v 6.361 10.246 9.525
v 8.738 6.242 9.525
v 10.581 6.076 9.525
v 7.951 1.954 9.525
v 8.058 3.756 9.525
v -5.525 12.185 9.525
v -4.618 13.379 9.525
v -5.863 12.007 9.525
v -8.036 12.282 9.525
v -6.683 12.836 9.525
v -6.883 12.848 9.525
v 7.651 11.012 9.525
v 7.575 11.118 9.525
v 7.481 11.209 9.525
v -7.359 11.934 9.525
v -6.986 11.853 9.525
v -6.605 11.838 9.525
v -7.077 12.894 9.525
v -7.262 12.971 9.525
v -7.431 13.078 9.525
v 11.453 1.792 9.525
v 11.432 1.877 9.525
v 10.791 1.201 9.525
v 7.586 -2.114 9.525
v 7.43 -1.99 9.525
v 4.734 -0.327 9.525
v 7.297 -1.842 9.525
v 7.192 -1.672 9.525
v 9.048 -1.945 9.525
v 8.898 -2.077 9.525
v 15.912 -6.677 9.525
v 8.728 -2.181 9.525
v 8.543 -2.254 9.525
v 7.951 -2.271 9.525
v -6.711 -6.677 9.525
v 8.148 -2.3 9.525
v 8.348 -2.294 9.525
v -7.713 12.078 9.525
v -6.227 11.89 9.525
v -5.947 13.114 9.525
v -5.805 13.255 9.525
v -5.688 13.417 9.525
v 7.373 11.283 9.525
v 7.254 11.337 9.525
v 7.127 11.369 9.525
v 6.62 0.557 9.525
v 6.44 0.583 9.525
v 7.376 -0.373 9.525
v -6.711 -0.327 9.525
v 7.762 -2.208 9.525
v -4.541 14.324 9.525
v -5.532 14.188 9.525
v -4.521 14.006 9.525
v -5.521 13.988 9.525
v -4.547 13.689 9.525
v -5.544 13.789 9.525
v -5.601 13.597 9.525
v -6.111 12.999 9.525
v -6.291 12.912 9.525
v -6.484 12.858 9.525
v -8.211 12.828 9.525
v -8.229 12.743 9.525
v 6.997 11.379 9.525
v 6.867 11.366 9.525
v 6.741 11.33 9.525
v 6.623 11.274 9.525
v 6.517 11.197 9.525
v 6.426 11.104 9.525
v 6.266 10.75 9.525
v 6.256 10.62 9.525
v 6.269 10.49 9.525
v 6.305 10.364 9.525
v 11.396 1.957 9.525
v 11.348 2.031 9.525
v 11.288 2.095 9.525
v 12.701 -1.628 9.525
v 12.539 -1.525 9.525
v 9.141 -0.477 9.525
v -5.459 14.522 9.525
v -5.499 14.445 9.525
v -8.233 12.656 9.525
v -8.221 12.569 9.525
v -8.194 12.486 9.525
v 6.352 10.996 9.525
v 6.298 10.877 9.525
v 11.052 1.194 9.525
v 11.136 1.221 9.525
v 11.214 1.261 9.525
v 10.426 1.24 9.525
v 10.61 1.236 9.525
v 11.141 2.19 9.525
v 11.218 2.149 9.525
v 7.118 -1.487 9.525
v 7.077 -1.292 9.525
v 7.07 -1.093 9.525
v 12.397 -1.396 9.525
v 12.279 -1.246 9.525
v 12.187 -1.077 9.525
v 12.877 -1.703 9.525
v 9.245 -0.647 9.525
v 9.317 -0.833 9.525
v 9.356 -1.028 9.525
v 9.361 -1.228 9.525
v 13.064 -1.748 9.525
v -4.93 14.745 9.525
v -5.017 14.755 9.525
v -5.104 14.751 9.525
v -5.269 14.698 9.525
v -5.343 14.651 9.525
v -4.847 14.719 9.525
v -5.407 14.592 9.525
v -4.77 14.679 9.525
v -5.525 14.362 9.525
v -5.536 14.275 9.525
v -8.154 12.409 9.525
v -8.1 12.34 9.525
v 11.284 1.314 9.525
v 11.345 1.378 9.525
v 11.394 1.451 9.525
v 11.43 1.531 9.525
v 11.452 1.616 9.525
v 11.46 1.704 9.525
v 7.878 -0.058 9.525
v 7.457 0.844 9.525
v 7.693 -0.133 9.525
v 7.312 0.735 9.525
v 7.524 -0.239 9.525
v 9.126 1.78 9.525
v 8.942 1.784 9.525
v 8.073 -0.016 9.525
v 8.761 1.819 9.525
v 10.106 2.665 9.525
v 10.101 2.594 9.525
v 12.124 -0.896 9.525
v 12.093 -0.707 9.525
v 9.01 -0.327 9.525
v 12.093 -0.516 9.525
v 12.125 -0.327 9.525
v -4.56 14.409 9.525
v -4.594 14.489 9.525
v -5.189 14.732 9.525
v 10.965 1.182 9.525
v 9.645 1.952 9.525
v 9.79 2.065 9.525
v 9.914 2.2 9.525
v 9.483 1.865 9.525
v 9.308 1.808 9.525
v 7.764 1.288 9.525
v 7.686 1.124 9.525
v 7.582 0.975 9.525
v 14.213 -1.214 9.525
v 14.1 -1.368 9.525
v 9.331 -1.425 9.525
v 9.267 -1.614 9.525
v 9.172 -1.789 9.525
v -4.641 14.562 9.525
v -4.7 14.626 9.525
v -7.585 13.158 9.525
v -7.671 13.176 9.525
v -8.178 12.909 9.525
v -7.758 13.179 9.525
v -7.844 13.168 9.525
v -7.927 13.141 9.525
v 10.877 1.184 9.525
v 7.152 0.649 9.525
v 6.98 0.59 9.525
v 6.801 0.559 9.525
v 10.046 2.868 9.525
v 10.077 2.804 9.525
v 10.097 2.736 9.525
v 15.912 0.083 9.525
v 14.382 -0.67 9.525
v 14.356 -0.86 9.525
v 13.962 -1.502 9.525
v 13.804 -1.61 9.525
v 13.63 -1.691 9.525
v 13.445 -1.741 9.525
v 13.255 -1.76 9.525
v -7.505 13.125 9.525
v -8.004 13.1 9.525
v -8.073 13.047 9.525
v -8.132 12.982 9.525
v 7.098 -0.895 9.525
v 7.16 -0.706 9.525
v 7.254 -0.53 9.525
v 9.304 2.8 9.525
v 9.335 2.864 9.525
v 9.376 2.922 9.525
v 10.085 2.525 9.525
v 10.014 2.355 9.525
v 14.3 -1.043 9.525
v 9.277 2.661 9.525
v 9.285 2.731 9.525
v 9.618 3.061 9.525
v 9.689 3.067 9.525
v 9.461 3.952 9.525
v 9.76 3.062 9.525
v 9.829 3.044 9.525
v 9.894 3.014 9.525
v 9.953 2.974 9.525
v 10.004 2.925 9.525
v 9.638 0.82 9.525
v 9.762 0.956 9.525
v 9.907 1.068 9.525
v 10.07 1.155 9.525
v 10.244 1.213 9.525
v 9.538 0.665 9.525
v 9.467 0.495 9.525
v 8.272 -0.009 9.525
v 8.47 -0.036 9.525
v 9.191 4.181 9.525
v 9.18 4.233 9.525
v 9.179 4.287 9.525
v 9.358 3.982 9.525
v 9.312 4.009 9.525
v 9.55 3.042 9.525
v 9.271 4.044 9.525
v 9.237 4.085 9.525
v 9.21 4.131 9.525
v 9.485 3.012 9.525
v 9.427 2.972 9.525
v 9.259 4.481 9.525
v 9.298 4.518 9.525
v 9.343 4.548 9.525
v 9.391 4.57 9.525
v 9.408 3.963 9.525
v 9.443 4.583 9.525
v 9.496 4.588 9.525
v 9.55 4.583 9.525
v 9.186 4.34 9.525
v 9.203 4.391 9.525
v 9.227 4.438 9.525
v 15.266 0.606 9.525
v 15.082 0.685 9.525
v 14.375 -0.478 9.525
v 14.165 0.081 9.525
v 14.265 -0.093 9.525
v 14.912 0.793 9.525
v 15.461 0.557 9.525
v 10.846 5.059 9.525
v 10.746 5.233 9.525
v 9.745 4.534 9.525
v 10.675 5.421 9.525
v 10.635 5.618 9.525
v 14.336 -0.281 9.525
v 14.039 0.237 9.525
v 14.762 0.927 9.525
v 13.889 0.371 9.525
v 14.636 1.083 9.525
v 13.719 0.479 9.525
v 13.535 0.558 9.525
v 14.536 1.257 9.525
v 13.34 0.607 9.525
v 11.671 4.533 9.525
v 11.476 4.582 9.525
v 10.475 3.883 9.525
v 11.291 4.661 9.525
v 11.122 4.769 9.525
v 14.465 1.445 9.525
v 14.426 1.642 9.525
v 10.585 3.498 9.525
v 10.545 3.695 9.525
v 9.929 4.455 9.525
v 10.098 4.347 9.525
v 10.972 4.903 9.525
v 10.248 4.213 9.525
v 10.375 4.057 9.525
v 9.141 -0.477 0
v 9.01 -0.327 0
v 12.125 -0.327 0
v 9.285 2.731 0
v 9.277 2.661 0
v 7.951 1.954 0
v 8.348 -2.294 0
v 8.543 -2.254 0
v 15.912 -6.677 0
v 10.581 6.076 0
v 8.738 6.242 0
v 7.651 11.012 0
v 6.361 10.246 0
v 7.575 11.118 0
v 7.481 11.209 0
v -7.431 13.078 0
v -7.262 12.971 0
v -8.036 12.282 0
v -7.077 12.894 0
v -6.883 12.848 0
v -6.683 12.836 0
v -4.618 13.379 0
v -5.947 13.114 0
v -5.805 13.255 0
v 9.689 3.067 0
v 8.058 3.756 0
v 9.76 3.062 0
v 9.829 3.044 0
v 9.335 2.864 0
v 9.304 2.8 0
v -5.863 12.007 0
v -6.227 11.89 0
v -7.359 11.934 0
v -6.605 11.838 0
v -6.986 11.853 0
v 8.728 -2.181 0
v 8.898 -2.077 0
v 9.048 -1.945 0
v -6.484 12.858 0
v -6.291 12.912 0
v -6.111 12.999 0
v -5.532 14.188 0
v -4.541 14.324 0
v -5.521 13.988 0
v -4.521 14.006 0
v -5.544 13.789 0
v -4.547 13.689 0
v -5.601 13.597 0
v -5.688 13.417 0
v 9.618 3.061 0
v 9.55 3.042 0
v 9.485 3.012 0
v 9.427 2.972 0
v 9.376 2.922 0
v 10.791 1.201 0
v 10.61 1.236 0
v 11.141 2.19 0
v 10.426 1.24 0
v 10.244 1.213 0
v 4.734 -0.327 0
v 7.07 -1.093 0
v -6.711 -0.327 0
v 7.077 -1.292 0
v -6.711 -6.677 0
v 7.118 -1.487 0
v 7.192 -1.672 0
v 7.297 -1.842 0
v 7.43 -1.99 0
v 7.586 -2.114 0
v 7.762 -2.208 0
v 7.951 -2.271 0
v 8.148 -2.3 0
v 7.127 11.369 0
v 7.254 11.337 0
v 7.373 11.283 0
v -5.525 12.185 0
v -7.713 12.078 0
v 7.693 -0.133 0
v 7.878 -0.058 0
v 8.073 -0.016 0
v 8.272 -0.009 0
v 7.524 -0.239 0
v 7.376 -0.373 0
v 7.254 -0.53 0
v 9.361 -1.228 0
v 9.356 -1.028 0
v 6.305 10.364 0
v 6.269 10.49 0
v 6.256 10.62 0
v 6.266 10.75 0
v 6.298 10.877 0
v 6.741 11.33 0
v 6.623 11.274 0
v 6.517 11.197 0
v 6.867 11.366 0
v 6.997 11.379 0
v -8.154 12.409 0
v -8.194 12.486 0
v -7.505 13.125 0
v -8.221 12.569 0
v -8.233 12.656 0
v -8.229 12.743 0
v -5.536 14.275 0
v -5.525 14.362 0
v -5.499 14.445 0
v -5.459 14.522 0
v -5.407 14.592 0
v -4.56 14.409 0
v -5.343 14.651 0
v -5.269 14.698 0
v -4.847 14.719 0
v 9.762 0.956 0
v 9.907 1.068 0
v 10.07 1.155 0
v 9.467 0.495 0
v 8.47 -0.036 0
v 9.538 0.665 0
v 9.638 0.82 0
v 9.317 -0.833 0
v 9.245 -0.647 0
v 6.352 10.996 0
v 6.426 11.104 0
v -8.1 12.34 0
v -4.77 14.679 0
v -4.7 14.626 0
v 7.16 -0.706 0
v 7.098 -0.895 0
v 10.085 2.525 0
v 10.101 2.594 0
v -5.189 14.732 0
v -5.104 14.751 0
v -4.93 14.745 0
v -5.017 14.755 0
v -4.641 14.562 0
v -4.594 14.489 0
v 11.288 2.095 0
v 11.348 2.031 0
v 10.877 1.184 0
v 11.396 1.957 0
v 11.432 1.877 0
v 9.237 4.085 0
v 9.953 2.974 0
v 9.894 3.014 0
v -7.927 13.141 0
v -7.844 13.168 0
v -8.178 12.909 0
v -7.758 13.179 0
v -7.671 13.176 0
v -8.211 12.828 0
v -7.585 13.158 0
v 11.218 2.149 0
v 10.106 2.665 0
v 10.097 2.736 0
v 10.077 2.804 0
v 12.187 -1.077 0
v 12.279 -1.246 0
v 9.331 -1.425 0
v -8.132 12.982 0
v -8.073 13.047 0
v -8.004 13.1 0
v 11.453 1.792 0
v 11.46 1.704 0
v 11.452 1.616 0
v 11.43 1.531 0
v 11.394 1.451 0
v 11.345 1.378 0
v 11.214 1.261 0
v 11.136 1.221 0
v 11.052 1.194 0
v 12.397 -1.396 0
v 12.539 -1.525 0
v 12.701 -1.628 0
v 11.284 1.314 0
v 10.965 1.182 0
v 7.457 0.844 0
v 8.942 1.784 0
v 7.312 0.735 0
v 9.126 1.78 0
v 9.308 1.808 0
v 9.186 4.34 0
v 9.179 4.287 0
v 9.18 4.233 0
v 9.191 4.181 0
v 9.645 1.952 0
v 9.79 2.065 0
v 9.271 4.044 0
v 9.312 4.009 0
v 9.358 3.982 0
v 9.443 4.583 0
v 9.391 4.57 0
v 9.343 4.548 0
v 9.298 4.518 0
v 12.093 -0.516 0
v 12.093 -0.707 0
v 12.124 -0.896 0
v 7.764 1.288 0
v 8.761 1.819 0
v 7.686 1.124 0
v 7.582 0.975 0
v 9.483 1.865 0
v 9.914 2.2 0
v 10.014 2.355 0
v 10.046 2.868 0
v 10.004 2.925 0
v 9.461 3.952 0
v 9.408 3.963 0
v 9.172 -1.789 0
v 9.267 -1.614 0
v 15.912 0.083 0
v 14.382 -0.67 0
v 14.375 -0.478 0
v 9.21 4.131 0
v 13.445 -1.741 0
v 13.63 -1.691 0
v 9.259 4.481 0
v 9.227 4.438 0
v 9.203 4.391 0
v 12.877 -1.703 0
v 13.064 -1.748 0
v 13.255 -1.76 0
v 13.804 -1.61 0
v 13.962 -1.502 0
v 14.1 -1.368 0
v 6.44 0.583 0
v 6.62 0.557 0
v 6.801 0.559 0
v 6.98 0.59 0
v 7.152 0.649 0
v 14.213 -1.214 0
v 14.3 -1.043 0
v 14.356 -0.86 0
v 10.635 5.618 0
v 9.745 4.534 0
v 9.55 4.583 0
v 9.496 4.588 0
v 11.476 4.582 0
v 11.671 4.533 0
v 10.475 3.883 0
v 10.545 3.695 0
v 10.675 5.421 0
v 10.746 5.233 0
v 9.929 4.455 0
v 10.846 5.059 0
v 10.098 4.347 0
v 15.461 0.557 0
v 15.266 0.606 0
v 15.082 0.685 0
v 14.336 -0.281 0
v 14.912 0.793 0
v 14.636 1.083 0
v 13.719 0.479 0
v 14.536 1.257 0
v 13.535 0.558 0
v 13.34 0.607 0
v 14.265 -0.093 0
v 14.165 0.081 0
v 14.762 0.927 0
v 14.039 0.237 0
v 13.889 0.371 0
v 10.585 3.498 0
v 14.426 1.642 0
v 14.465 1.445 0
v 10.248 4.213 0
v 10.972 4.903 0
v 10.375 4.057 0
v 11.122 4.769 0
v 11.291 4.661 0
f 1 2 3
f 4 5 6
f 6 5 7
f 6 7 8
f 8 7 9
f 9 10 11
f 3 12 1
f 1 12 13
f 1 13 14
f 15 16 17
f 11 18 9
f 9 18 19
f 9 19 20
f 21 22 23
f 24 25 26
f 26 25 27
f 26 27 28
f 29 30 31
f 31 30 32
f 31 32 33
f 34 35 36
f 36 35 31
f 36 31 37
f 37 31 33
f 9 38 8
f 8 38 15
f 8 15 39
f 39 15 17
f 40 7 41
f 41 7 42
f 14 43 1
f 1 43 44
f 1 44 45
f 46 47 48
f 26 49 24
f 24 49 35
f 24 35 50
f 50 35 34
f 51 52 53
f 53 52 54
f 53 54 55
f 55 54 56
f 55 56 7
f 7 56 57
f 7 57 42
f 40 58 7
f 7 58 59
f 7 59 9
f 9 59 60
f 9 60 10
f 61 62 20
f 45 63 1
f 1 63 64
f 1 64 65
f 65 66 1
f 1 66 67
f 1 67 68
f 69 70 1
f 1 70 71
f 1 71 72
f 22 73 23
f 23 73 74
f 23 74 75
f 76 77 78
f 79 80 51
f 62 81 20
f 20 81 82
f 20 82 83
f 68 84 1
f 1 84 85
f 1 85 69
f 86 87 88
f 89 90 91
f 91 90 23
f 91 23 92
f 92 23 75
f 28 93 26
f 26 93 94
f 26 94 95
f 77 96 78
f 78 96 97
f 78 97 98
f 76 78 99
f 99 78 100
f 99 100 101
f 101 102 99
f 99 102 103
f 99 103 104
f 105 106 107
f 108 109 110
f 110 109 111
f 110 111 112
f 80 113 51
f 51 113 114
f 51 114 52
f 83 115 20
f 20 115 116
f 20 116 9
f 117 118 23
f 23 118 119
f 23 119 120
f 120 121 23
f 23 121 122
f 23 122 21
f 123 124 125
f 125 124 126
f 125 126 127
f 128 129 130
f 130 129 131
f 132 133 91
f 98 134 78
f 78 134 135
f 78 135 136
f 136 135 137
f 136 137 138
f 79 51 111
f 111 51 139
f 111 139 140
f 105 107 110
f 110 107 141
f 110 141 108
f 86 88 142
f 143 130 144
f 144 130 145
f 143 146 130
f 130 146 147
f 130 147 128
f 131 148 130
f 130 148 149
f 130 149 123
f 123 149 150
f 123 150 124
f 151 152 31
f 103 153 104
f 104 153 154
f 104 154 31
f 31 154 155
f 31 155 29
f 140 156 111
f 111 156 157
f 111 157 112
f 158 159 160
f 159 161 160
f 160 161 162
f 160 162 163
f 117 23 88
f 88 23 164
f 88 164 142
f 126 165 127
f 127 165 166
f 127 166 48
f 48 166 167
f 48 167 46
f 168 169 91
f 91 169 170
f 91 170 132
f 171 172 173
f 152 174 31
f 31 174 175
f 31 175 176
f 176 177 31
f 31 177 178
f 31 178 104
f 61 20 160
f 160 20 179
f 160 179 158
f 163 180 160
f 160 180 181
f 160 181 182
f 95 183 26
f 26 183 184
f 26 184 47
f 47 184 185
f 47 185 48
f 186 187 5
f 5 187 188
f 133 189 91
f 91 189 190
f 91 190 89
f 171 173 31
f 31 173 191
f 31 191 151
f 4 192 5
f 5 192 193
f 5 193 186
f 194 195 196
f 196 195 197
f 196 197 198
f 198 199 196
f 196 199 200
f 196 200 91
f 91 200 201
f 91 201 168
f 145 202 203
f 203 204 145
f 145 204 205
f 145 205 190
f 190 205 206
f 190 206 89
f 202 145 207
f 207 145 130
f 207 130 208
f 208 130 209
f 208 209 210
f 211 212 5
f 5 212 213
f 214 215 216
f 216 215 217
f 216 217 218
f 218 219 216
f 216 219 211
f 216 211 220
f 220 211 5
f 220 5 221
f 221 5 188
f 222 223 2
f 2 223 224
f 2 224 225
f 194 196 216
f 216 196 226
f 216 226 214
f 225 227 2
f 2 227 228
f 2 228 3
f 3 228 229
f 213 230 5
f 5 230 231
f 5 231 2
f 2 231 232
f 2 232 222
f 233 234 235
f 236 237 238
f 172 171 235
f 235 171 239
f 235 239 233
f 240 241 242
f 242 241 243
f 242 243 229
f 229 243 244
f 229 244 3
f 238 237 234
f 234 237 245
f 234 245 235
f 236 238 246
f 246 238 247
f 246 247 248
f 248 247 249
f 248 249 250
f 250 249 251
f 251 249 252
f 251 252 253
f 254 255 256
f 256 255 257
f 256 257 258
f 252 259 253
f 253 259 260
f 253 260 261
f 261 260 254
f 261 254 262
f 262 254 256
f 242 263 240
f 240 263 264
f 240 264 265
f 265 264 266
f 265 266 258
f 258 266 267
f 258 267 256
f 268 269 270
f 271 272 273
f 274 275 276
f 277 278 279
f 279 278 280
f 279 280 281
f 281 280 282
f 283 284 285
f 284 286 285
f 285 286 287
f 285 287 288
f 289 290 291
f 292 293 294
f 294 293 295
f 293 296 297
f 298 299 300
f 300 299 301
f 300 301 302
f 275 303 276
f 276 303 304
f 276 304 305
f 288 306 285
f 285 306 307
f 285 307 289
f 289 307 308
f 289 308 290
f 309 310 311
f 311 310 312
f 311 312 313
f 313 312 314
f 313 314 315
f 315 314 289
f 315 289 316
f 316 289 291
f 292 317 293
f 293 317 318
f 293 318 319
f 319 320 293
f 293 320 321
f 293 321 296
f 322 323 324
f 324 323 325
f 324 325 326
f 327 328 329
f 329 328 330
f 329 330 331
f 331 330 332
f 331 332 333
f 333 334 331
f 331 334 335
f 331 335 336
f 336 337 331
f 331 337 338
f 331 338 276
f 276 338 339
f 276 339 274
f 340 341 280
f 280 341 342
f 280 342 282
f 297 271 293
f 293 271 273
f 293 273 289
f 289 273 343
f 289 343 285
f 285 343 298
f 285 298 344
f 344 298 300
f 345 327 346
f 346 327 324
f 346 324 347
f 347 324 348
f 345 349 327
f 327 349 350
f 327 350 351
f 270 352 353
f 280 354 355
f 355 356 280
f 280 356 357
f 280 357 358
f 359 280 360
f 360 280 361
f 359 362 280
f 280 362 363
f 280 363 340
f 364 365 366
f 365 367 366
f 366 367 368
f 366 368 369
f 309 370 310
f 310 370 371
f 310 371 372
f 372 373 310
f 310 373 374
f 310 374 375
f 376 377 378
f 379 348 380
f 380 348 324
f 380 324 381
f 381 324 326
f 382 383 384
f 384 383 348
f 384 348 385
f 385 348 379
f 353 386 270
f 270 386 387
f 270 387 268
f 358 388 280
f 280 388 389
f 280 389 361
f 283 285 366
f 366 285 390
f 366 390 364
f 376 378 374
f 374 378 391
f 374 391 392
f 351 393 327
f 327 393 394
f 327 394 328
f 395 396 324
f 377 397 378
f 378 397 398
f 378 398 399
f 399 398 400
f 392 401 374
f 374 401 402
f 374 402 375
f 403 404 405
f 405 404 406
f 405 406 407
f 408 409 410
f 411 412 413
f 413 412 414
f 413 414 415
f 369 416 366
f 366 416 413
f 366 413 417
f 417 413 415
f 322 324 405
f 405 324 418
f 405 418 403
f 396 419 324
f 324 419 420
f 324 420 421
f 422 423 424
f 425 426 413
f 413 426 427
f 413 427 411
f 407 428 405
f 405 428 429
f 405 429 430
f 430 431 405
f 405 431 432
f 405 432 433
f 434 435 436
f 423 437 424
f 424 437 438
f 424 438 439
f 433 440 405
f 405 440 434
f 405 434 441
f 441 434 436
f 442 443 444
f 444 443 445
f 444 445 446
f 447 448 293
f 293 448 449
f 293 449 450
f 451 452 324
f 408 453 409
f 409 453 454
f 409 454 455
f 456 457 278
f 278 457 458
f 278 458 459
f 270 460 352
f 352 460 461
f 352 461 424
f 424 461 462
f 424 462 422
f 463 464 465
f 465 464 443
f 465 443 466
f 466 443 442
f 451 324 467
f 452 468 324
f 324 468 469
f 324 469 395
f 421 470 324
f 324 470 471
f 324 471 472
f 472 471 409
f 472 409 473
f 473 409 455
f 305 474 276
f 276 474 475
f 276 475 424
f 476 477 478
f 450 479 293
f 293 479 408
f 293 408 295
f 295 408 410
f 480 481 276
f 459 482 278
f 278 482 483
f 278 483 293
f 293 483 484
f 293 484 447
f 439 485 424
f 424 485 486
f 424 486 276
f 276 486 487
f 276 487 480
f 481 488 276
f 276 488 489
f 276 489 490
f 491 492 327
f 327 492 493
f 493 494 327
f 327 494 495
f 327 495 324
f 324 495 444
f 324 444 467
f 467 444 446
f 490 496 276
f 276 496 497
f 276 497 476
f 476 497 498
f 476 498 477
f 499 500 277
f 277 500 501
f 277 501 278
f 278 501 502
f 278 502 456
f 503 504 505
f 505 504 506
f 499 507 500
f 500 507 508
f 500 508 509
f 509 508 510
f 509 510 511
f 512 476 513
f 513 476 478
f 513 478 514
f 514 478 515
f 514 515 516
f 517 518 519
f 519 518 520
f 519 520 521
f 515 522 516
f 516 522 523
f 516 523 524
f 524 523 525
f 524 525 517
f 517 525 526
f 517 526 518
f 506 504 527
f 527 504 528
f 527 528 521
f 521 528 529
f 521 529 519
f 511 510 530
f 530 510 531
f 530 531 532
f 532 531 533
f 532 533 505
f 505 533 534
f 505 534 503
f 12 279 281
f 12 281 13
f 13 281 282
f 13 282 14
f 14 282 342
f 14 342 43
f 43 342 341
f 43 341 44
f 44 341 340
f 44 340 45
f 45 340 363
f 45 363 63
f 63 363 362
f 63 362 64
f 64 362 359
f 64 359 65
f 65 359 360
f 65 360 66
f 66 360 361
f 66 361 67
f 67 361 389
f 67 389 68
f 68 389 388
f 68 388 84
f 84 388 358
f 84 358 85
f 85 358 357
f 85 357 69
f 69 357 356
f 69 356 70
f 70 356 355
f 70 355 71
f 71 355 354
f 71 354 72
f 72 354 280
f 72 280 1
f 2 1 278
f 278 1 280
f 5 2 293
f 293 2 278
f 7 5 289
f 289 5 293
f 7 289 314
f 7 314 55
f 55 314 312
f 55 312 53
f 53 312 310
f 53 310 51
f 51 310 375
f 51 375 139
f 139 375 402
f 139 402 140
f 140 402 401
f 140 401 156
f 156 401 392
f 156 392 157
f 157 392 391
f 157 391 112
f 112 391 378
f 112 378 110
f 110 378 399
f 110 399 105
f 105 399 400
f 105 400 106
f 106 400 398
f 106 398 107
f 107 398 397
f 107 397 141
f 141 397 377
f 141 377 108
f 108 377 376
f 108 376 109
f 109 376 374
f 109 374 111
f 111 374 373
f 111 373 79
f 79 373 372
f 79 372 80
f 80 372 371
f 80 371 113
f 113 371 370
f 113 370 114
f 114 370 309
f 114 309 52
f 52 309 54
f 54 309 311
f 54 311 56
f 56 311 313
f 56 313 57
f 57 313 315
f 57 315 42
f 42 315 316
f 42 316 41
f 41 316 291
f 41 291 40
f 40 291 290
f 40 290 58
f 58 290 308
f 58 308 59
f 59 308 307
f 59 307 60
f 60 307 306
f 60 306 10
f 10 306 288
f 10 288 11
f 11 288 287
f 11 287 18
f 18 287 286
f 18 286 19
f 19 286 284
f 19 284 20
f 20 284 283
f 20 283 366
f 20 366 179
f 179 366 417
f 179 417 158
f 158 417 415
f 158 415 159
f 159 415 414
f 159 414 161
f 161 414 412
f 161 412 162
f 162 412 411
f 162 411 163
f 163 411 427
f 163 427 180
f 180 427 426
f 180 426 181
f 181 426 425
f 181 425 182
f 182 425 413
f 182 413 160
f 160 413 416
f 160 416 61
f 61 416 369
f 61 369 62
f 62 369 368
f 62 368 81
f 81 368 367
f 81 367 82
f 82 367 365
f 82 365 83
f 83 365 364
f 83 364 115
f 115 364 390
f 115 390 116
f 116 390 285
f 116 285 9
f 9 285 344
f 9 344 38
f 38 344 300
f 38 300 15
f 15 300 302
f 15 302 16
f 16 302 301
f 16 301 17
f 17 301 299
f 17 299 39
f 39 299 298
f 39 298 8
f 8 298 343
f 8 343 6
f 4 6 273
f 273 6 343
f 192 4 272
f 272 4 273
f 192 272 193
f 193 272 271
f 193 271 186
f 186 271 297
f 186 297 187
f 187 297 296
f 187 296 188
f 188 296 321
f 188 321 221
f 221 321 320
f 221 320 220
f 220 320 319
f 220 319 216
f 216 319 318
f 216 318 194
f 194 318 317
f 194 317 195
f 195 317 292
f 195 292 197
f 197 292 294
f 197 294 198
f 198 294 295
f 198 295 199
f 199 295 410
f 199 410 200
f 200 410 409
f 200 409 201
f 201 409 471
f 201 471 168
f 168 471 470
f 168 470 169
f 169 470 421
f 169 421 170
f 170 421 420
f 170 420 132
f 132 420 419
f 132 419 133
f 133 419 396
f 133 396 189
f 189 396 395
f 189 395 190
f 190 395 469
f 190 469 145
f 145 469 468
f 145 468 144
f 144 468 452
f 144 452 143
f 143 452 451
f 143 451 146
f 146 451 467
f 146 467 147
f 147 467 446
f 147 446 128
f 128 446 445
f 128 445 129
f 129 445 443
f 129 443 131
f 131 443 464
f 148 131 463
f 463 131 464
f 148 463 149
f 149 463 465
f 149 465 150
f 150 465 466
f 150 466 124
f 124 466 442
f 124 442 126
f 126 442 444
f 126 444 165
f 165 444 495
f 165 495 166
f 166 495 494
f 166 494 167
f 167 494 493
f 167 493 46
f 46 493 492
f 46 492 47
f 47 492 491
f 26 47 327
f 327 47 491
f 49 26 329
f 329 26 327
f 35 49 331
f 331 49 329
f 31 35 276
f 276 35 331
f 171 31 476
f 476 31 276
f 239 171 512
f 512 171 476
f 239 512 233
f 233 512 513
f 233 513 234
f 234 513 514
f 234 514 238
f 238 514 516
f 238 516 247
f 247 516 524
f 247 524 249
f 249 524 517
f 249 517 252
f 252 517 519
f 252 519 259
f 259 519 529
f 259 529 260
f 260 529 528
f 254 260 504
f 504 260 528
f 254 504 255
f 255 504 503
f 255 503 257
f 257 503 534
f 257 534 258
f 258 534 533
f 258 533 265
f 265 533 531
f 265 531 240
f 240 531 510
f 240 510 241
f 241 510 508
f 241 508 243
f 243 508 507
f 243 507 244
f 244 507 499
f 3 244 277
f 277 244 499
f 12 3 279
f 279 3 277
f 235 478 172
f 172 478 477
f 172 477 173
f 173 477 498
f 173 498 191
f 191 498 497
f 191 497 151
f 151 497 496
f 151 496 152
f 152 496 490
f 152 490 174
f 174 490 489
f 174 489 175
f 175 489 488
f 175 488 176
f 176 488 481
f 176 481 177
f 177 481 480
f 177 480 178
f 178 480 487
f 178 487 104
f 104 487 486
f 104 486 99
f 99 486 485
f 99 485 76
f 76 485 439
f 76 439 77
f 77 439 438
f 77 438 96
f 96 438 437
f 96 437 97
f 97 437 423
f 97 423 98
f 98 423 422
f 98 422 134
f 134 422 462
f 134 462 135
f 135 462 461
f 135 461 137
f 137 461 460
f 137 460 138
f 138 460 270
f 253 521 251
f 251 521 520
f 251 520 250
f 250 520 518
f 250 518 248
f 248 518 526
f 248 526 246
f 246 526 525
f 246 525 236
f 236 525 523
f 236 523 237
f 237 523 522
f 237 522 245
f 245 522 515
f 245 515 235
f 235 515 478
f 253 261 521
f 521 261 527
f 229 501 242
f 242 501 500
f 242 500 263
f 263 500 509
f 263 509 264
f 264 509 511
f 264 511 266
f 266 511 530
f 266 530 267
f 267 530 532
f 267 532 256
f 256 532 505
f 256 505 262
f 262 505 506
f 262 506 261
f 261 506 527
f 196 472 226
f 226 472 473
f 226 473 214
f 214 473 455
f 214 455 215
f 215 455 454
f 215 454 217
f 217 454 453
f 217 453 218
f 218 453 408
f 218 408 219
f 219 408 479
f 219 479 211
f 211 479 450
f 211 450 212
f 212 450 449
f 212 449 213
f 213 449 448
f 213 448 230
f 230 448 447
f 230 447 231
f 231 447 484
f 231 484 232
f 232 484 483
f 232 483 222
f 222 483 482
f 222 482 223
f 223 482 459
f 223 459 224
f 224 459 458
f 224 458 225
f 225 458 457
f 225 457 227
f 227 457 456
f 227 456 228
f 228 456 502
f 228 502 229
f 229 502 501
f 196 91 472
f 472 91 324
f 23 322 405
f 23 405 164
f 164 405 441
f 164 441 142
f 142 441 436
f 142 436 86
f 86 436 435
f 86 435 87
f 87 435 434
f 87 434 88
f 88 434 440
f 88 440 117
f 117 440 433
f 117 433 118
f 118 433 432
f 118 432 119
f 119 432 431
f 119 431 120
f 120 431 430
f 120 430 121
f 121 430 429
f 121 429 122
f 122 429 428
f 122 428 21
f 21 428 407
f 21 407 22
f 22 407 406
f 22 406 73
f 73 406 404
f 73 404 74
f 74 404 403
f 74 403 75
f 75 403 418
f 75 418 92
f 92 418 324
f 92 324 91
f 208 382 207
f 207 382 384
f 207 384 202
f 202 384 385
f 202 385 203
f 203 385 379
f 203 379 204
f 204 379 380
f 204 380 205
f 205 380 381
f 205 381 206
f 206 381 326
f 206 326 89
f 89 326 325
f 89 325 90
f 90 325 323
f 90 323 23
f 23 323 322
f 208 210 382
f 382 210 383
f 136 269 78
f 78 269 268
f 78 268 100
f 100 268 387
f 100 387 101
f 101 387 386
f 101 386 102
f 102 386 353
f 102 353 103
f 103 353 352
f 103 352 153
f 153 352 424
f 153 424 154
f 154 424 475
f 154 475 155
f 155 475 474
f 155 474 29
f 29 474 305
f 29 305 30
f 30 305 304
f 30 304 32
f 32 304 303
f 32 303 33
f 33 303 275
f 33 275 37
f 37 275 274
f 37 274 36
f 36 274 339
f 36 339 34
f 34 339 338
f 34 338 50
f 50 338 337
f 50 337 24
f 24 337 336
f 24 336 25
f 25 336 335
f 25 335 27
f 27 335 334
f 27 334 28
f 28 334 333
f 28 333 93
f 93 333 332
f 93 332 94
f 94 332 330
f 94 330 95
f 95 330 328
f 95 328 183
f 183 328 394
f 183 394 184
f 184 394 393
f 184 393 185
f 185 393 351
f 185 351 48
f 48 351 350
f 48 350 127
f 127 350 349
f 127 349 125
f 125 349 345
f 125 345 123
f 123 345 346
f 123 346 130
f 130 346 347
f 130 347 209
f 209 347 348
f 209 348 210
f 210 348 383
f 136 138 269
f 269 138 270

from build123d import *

# Parameters (mm, degrees)
BOSS_CONFIGDOWN_DEPTH = 9.525


with BuildPart() as part:
    # Sketch-ConfigDown → Boss-ConfigDown (new body)
    with BuildSketch(Plane.XY):
        with BuildLine():
            Line((6.361253842, 10.24597905), (8.738243229, 6.241984987))
            Line((8.738243229, 6.241984987), (8.057962434, 3.756033667))
            Line((8.057962434, 3.756033667), (-4.618320702, 13.379362796))
            ThreePointArc((-4.618320702, 13.379362796), (-4.527893169, 13.847264701), (-4.540792454, 14.323649986))
            ThreePointArc((-4.540792454, 14.323649986), (-5.103991925, 14.751208585), (-5.531550525, 14.188009115))
            ThreePointArc((-5.531550525, 14.188009115), (-6.110534003, 12.998511063), (-7.431054292, 13.078220852))
            ThreePointArc((-7.431054292, 13.078220852), (-8.131626042, 12.982308272), (-8.035713463, 12.281736522))
            ThreePointArc((-8.035713463, 12.281736522), (-6.795814255, 11.837551908), (-5.525309458, 12.184636302))
            Line((-5.525309458, 12.184636302), (7.950964943, 1.953985676))
            Line((7.950964943, 1.953985676), (9.277127849, 2.660583625))
            ThreePointArc((9.277127849, 2.660583625), (9.760085504, 3.061509958), (10.085312529, 2.524651128))
            ThreePointArc((10.085312529, 2.524651128), (9.565582424, 1.905135286), (8.761497669, 1.81930425))
            Line((8.761497669, 1.81930425), (7.764223808, 1.287942936))
            ThreePointArc((7.764223808, 1.287942936), (7.233567574, 0.688933561), (6.440408949, 0.582596058))
            Line((6.440408949, 0.582596058), (4.733705966, -0.326758911))
            Line((4.733705966, -0.326758911), (-6.711147083, -0.326758911))
            Line((-6.711147083, -0.326758911), (-6.711147083, -6.676758911))
            Line((-6.711147083, -6.676758911), (4.733705966, -6.676758911))
            Line((4.733705966, -6.676758911), (15.912367826, -6.676758911))
            Line((15.912367826, -6.676758911), (15.912367826, 0.083144011))
            Line((15.912367826, 0.083144011), (15.460918062, 0.556695121))
            ThreePointArc((15.460918062, 0.556695121), (14.76245819, 0.927037945), (14.425895986, 1.642388127))
            Line((14.425895986, 1.642388127), (11.670504731, 4.532673357))
            ThreePointArc((11.670504731, 4.532673357), (10.972044859, 4.903016181), (10.635482655, 5.618366363))
            Line((10.635482655, 5.618366363), (10.581235342, 6.075921255))
            Line((10.581235342, 6.075921255), (7.651089987, 11.011696177))
            ThreePointArc((7.651089987, 11.011696177), (6.623313351, 11.273755686), (6.361253842, 10.24597905))
        make_face()
        with BuildLine():
            Line((9.466844547, 0.495489391), (8.469570686, -0.035871924))
            ThreePointArc((8.469570686, -0.035871924), (7.676412061, -0.142209427), (7.145755827, -0.741218802))
            ThreePointArc((7.145755827, -0.741218802), (8.464824154, -2.274501403), (9.009980984, -0.326758911))
            Line((9.009980984, -0.326758911), (12.125210012, -0.326758911))
            ThreePointArc((12.125210012, -0.326758911), (13.158910635, -1.75798627), (14.375225055, -0.478326954))
            ThreePointArc((14.375225055, -0.478326954), (14.038662852, 0.237023228), (13.34020298, 0.607366052))
            Line((13.34020298, 0.607366052), (10.584811724, 3.497651281))
            ThreePointArc((10.584811724, 3.497651281), (10.248249521, 4.213001464), (9.549789649, 4.583344288))
            ThreePointArc((9.549789649, 4.583344288), (9.181503481, 4.313482225), (9.460673669, 3.952200837))
            Line((9.460673669, 3.952200837), (10.970207057, 2.368766163))
            Line((10.970207057, 2.368766163), (11.140648168, 2.189980874))
            ThreePointArc((11.140648168, 2.189980874), (11.42991126, 1.531140478), (10.790659406, 1.200836268))
            ThreePointArc((10.790659406, 1.200836268), (9.986574651, 1.115005233), (9.466844547, 0.495489391))
        make_face(mode=Mode.SUBTRACT)
    extrude(amount=BOSS_CONFIGDOWN_DEPTH)


solid = part.part
